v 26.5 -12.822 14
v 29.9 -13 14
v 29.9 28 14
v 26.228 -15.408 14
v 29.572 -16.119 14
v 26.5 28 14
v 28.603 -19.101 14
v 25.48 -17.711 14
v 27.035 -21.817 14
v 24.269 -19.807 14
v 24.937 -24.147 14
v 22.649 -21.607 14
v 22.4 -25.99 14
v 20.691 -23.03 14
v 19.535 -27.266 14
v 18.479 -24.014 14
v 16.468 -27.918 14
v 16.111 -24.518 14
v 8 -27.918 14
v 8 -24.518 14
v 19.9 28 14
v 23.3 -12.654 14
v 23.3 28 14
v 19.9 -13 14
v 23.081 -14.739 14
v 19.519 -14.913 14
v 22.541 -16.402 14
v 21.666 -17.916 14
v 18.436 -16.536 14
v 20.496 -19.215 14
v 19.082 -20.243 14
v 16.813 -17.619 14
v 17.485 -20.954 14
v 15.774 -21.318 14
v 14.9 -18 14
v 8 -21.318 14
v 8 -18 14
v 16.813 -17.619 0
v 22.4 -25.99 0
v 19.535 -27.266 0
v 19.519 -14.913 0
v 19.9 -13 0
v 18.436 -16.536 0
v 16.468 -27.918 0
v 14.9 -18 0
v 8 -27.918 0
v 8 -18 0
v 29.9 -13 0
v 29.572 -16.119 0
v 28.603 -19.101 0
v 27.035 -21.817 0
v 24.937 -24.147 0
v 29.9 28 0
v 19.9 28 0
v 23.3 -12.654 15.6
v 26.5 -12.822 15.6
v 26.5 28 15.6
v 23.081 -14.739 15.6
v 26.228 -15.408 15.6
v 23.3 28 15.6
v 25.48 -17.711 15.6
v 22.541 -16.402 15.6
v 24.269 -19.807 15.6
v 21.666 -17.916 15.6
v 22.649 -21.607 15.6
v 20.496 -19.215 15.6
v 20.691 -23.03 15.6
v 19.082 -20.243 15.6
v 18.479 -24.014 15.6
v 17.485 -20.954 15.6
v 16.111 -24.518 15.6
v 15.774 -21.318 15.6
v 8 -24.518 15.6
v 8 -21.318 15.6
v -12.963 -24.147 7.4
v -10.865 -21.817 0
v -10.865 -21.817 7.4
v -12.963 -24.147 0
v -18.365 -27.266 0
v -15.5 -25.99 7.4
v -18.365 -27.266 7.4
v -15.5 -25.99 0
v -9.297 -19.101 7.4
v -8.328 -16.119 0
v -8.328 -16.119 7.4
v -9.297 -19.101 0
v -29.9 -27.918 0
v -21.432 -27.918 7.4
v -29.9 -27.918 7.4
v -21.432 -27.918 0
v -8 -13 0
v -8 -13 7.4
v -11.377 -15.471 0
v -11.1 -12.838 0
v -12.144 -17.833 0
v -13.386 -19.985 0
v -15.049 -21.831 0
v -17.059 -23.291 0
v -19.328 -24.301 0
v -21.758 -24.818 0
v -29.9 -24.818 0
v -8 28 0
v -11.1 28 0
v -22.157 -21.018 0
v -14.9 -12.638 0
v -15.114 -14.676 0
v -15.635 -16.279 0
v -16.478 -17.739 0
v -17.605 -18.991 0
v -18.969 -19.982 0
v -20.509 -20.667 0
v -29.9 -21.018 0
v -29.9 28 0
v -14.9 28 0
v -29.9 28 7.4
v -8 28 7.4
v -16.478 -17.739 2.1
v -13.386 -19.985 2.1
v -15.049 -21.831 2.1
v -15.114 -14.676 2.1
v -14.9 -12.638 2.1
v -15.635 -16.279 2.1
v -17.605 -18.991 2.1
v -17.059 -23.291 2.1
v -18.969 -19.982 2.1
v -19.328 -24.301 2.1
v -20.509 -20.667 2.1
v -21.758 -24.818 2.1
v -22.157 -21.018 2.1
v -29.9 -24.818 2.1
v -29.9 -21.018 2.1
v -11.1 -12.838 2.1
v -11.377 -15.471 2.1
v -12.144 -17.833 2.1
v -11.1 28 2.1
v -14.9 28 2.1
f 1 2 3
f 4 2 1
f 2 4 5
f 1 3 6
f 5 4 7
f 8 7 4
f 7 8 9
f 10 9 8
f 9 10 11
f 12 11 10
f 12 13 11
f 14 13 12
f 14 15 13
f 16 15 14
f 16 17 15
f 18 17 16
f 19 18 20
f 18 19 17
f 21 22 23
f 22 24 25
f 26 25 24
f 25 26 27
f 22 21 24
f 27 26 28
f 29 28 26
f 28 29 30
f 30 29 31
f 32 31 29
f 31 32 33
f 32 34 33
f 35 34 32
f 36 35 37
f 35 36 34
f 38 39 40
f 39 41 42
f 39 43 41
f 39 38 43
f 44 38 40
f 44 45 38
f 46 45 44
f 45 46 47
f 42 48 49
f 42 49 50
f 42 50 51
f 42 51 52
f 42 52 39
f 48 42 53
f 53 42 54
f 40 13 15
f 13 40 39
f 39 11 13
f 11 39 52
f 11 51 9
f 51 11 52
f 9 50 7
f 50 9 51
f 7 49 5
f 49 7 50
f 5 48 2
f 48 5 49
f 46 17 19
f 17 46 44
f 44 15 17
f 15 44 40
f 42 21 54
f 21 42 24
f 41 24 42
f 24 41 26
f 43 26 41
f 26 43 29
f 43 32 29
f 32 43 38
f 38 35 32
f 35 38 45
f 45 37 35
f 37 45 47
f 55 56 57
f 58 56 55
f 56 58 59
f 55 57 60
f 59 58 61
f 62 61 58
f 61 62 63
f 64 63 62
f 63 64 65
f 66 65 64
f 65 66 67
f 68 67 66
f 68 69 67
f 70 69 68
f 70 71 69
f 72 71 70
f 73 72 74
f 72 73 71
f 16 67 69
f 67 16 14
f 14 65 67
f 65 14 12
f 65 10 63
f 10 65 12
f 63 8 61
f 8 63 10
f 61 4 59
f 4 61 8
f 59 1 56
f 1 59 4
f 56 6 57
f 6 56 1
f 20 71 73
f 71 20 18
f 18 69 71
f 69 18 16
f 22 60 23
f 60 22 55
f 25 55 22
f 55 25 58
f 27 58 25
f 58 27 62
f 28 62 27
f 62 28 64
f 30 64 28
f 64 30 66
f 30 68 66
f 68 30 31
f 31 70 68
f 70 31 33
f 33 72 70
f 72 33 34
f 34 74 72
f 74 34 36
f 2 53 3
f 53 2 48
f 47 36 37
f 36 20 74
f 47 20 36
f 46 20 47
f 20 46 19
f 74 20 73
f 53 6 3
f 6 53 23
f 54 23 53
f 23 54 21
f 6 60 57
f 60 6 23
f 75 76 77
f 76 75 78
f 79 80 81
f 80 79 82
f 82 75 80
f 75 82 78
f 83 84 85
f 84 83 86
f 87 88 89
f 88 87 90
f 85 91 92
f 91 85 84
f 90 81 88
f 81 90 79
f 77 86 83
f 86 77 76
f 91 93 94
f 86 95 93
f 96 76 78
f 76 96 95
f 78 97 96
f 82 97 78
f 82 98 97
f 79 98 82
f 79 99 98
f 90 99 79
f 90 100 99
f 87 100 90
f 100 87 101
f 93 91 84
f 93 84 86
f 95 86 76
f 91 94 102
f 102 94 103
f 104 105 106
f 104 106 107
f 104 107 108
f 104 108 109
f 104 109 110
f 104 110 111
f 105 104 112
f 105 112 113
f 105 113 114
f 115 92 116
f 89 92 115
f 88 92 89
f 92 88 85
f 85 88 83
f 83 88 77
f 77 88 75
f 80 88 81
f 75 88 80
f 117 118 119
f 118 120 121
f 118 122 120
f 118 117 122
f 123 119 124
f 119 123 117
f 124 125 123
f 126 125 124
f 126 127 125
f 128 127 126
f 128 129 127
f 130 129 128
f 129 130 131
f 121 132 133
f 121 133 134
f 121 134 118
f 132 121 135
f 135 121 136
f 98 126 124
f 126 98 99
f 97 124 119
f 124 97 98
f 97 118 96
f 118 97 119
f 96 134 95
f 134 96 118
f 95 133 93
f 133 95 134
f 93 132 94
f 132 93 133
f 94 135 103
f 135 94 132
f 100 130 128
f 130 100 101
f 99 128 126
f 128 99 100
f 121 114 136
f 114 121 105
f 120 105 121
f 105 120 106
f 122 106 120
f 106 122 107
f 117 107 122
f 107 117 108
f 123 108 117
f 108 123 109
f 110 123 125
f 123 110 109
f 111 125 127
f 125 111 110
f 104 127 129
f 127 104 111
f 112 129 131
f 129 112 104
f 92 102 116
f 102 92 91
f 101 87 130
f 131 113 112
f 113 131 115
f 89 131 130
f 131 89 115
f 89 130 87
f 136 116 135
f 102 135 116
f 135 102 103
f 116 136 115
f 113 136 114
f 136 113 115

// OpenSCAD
// file: ../../lib/project/util.scad
// lib/project/util.scad

module rounded_rect_2d(size = [10, 10], r = 2) {
  x = size[0];
  y = size[1];
  rr = min(r, min(x, y) / 2);

  hull() {
    for (sx = [-1, 1], sy = [-1, 1]) {
      translate([sx * (x / 2 - rr), sy * (y / 2 - rr)])
        circle(r = rr);
    }
  }
}
// file: ../../lib/project/params.scad
// lib/project/params.scad
// Shared project parameters for the final tray and all fit-test models.

debug = false;

// Main tray footprint.
tray_corner_r = 15;

// Top tray shell.
tray_floor_t = 2.4;
tray_wall_h = 14;
top_wall_w = 10;
glue_rabbet_h = 1.6;
glue_rabbet_w = 3.2;
glue_rabbet_side_clearance = 0.3;
glue_rabbet_vertical_clearance = 0.5;

// Underside support lip and rear support section.
support_lip_drop = 15;
support_lip_w = 10;
console_clear_w = 320;
side_lip_run = 170;
tray_w = console_clear_w + 2 * support_lip_w;
tray_d = side_lip_run + support_lip_w;
front_extension = 35;
rear_gap_w = 28;
rear_tongue_side_margin = 20;
rear_tongue_w = tray_w - 2 * rear_tongue_side_margin;
rear_tongue_depth = 34;
rear_tongue_t = 4.0;

// Cup holder location and plug geometry.
cup_spacing = 135;
// Confirmed from fit checks: move plugs 39 mm rearward from the prior position.
cup_y_from_front = 111;
plug_top_d = 90;
plug_bottom_d = 78;
plug_h = 71;
plug_shell_t = 1.6;
plug_clearance_z = 0;
cup_rim_w = 10;
cup_rim_h = 5;

// Optional underside splice plate for joining printed tray halves.
splice_plate_enable = true;
splice_plate_w = 120;
splice_plate_d = 18;
splice_plate_t = 2;
splice_plate_corner_r = 3;
splice_plate_y_from_front = 40;
splice_plate_side_clearance = 0.3;
splice_plate_vertical_clearance = 0.5;
rear_splice_plate_enable = true;
rear_splice_plate_y_from_front = 184;

// Fit-test defaults.
test_plug_top_ds = [84, 85, 86];
test_spacing_values = [116, 118, 120];
test_lip_drop_values = [8, 10, 12];
test_rear_tongue_ts = [1.4, 1.8, 2.2];
test_frame_wall_w = 12;
test_front_zone_depth = 100;
test_rear_zone_depth = 56;
test_gap_section_w = 140;
test_coupon_spacing = 18;
test_front_to_back_slice_w = 10;
test_rabbet_corner_section_size = 56;
test_rabbet_coupon_gap = 16;
test_rabbet_body_margin_from_groove = 15;
// main file
use <../../lib/project/console_tray.scad>;
include <../../lib/project/params.scad>;

top_rim_rabbet_corner_fit_variant(
  tray_w = tray_w,
  tray_d = tray_d,
  front_extension = front_extension,
  tray_corner_r = tray_corner_r,
  tray_floor_t = tray_floor_t,
  tray_wall_h = tray_wall_h,
  top_wall_w = top_wall_w,
  glue_rabbet_h = glue_rabbet_h,
  glue_rabbet_w = glue_rabbet_w,
  glue_rabbet_side_clearance = glue_rabbet_side_clearance,
  glue_rabbet_vertical_clearance = glue_rabbet_vertical_clearance,
  cup_rim_h = cup_rim_h,
  section_size = test_rabbet_corner_section_size,
  coupon_gap = test_rabbet_coupon_gap,
  body_margin_from_groove = test_rabbet_body_margin_from_groove
);
